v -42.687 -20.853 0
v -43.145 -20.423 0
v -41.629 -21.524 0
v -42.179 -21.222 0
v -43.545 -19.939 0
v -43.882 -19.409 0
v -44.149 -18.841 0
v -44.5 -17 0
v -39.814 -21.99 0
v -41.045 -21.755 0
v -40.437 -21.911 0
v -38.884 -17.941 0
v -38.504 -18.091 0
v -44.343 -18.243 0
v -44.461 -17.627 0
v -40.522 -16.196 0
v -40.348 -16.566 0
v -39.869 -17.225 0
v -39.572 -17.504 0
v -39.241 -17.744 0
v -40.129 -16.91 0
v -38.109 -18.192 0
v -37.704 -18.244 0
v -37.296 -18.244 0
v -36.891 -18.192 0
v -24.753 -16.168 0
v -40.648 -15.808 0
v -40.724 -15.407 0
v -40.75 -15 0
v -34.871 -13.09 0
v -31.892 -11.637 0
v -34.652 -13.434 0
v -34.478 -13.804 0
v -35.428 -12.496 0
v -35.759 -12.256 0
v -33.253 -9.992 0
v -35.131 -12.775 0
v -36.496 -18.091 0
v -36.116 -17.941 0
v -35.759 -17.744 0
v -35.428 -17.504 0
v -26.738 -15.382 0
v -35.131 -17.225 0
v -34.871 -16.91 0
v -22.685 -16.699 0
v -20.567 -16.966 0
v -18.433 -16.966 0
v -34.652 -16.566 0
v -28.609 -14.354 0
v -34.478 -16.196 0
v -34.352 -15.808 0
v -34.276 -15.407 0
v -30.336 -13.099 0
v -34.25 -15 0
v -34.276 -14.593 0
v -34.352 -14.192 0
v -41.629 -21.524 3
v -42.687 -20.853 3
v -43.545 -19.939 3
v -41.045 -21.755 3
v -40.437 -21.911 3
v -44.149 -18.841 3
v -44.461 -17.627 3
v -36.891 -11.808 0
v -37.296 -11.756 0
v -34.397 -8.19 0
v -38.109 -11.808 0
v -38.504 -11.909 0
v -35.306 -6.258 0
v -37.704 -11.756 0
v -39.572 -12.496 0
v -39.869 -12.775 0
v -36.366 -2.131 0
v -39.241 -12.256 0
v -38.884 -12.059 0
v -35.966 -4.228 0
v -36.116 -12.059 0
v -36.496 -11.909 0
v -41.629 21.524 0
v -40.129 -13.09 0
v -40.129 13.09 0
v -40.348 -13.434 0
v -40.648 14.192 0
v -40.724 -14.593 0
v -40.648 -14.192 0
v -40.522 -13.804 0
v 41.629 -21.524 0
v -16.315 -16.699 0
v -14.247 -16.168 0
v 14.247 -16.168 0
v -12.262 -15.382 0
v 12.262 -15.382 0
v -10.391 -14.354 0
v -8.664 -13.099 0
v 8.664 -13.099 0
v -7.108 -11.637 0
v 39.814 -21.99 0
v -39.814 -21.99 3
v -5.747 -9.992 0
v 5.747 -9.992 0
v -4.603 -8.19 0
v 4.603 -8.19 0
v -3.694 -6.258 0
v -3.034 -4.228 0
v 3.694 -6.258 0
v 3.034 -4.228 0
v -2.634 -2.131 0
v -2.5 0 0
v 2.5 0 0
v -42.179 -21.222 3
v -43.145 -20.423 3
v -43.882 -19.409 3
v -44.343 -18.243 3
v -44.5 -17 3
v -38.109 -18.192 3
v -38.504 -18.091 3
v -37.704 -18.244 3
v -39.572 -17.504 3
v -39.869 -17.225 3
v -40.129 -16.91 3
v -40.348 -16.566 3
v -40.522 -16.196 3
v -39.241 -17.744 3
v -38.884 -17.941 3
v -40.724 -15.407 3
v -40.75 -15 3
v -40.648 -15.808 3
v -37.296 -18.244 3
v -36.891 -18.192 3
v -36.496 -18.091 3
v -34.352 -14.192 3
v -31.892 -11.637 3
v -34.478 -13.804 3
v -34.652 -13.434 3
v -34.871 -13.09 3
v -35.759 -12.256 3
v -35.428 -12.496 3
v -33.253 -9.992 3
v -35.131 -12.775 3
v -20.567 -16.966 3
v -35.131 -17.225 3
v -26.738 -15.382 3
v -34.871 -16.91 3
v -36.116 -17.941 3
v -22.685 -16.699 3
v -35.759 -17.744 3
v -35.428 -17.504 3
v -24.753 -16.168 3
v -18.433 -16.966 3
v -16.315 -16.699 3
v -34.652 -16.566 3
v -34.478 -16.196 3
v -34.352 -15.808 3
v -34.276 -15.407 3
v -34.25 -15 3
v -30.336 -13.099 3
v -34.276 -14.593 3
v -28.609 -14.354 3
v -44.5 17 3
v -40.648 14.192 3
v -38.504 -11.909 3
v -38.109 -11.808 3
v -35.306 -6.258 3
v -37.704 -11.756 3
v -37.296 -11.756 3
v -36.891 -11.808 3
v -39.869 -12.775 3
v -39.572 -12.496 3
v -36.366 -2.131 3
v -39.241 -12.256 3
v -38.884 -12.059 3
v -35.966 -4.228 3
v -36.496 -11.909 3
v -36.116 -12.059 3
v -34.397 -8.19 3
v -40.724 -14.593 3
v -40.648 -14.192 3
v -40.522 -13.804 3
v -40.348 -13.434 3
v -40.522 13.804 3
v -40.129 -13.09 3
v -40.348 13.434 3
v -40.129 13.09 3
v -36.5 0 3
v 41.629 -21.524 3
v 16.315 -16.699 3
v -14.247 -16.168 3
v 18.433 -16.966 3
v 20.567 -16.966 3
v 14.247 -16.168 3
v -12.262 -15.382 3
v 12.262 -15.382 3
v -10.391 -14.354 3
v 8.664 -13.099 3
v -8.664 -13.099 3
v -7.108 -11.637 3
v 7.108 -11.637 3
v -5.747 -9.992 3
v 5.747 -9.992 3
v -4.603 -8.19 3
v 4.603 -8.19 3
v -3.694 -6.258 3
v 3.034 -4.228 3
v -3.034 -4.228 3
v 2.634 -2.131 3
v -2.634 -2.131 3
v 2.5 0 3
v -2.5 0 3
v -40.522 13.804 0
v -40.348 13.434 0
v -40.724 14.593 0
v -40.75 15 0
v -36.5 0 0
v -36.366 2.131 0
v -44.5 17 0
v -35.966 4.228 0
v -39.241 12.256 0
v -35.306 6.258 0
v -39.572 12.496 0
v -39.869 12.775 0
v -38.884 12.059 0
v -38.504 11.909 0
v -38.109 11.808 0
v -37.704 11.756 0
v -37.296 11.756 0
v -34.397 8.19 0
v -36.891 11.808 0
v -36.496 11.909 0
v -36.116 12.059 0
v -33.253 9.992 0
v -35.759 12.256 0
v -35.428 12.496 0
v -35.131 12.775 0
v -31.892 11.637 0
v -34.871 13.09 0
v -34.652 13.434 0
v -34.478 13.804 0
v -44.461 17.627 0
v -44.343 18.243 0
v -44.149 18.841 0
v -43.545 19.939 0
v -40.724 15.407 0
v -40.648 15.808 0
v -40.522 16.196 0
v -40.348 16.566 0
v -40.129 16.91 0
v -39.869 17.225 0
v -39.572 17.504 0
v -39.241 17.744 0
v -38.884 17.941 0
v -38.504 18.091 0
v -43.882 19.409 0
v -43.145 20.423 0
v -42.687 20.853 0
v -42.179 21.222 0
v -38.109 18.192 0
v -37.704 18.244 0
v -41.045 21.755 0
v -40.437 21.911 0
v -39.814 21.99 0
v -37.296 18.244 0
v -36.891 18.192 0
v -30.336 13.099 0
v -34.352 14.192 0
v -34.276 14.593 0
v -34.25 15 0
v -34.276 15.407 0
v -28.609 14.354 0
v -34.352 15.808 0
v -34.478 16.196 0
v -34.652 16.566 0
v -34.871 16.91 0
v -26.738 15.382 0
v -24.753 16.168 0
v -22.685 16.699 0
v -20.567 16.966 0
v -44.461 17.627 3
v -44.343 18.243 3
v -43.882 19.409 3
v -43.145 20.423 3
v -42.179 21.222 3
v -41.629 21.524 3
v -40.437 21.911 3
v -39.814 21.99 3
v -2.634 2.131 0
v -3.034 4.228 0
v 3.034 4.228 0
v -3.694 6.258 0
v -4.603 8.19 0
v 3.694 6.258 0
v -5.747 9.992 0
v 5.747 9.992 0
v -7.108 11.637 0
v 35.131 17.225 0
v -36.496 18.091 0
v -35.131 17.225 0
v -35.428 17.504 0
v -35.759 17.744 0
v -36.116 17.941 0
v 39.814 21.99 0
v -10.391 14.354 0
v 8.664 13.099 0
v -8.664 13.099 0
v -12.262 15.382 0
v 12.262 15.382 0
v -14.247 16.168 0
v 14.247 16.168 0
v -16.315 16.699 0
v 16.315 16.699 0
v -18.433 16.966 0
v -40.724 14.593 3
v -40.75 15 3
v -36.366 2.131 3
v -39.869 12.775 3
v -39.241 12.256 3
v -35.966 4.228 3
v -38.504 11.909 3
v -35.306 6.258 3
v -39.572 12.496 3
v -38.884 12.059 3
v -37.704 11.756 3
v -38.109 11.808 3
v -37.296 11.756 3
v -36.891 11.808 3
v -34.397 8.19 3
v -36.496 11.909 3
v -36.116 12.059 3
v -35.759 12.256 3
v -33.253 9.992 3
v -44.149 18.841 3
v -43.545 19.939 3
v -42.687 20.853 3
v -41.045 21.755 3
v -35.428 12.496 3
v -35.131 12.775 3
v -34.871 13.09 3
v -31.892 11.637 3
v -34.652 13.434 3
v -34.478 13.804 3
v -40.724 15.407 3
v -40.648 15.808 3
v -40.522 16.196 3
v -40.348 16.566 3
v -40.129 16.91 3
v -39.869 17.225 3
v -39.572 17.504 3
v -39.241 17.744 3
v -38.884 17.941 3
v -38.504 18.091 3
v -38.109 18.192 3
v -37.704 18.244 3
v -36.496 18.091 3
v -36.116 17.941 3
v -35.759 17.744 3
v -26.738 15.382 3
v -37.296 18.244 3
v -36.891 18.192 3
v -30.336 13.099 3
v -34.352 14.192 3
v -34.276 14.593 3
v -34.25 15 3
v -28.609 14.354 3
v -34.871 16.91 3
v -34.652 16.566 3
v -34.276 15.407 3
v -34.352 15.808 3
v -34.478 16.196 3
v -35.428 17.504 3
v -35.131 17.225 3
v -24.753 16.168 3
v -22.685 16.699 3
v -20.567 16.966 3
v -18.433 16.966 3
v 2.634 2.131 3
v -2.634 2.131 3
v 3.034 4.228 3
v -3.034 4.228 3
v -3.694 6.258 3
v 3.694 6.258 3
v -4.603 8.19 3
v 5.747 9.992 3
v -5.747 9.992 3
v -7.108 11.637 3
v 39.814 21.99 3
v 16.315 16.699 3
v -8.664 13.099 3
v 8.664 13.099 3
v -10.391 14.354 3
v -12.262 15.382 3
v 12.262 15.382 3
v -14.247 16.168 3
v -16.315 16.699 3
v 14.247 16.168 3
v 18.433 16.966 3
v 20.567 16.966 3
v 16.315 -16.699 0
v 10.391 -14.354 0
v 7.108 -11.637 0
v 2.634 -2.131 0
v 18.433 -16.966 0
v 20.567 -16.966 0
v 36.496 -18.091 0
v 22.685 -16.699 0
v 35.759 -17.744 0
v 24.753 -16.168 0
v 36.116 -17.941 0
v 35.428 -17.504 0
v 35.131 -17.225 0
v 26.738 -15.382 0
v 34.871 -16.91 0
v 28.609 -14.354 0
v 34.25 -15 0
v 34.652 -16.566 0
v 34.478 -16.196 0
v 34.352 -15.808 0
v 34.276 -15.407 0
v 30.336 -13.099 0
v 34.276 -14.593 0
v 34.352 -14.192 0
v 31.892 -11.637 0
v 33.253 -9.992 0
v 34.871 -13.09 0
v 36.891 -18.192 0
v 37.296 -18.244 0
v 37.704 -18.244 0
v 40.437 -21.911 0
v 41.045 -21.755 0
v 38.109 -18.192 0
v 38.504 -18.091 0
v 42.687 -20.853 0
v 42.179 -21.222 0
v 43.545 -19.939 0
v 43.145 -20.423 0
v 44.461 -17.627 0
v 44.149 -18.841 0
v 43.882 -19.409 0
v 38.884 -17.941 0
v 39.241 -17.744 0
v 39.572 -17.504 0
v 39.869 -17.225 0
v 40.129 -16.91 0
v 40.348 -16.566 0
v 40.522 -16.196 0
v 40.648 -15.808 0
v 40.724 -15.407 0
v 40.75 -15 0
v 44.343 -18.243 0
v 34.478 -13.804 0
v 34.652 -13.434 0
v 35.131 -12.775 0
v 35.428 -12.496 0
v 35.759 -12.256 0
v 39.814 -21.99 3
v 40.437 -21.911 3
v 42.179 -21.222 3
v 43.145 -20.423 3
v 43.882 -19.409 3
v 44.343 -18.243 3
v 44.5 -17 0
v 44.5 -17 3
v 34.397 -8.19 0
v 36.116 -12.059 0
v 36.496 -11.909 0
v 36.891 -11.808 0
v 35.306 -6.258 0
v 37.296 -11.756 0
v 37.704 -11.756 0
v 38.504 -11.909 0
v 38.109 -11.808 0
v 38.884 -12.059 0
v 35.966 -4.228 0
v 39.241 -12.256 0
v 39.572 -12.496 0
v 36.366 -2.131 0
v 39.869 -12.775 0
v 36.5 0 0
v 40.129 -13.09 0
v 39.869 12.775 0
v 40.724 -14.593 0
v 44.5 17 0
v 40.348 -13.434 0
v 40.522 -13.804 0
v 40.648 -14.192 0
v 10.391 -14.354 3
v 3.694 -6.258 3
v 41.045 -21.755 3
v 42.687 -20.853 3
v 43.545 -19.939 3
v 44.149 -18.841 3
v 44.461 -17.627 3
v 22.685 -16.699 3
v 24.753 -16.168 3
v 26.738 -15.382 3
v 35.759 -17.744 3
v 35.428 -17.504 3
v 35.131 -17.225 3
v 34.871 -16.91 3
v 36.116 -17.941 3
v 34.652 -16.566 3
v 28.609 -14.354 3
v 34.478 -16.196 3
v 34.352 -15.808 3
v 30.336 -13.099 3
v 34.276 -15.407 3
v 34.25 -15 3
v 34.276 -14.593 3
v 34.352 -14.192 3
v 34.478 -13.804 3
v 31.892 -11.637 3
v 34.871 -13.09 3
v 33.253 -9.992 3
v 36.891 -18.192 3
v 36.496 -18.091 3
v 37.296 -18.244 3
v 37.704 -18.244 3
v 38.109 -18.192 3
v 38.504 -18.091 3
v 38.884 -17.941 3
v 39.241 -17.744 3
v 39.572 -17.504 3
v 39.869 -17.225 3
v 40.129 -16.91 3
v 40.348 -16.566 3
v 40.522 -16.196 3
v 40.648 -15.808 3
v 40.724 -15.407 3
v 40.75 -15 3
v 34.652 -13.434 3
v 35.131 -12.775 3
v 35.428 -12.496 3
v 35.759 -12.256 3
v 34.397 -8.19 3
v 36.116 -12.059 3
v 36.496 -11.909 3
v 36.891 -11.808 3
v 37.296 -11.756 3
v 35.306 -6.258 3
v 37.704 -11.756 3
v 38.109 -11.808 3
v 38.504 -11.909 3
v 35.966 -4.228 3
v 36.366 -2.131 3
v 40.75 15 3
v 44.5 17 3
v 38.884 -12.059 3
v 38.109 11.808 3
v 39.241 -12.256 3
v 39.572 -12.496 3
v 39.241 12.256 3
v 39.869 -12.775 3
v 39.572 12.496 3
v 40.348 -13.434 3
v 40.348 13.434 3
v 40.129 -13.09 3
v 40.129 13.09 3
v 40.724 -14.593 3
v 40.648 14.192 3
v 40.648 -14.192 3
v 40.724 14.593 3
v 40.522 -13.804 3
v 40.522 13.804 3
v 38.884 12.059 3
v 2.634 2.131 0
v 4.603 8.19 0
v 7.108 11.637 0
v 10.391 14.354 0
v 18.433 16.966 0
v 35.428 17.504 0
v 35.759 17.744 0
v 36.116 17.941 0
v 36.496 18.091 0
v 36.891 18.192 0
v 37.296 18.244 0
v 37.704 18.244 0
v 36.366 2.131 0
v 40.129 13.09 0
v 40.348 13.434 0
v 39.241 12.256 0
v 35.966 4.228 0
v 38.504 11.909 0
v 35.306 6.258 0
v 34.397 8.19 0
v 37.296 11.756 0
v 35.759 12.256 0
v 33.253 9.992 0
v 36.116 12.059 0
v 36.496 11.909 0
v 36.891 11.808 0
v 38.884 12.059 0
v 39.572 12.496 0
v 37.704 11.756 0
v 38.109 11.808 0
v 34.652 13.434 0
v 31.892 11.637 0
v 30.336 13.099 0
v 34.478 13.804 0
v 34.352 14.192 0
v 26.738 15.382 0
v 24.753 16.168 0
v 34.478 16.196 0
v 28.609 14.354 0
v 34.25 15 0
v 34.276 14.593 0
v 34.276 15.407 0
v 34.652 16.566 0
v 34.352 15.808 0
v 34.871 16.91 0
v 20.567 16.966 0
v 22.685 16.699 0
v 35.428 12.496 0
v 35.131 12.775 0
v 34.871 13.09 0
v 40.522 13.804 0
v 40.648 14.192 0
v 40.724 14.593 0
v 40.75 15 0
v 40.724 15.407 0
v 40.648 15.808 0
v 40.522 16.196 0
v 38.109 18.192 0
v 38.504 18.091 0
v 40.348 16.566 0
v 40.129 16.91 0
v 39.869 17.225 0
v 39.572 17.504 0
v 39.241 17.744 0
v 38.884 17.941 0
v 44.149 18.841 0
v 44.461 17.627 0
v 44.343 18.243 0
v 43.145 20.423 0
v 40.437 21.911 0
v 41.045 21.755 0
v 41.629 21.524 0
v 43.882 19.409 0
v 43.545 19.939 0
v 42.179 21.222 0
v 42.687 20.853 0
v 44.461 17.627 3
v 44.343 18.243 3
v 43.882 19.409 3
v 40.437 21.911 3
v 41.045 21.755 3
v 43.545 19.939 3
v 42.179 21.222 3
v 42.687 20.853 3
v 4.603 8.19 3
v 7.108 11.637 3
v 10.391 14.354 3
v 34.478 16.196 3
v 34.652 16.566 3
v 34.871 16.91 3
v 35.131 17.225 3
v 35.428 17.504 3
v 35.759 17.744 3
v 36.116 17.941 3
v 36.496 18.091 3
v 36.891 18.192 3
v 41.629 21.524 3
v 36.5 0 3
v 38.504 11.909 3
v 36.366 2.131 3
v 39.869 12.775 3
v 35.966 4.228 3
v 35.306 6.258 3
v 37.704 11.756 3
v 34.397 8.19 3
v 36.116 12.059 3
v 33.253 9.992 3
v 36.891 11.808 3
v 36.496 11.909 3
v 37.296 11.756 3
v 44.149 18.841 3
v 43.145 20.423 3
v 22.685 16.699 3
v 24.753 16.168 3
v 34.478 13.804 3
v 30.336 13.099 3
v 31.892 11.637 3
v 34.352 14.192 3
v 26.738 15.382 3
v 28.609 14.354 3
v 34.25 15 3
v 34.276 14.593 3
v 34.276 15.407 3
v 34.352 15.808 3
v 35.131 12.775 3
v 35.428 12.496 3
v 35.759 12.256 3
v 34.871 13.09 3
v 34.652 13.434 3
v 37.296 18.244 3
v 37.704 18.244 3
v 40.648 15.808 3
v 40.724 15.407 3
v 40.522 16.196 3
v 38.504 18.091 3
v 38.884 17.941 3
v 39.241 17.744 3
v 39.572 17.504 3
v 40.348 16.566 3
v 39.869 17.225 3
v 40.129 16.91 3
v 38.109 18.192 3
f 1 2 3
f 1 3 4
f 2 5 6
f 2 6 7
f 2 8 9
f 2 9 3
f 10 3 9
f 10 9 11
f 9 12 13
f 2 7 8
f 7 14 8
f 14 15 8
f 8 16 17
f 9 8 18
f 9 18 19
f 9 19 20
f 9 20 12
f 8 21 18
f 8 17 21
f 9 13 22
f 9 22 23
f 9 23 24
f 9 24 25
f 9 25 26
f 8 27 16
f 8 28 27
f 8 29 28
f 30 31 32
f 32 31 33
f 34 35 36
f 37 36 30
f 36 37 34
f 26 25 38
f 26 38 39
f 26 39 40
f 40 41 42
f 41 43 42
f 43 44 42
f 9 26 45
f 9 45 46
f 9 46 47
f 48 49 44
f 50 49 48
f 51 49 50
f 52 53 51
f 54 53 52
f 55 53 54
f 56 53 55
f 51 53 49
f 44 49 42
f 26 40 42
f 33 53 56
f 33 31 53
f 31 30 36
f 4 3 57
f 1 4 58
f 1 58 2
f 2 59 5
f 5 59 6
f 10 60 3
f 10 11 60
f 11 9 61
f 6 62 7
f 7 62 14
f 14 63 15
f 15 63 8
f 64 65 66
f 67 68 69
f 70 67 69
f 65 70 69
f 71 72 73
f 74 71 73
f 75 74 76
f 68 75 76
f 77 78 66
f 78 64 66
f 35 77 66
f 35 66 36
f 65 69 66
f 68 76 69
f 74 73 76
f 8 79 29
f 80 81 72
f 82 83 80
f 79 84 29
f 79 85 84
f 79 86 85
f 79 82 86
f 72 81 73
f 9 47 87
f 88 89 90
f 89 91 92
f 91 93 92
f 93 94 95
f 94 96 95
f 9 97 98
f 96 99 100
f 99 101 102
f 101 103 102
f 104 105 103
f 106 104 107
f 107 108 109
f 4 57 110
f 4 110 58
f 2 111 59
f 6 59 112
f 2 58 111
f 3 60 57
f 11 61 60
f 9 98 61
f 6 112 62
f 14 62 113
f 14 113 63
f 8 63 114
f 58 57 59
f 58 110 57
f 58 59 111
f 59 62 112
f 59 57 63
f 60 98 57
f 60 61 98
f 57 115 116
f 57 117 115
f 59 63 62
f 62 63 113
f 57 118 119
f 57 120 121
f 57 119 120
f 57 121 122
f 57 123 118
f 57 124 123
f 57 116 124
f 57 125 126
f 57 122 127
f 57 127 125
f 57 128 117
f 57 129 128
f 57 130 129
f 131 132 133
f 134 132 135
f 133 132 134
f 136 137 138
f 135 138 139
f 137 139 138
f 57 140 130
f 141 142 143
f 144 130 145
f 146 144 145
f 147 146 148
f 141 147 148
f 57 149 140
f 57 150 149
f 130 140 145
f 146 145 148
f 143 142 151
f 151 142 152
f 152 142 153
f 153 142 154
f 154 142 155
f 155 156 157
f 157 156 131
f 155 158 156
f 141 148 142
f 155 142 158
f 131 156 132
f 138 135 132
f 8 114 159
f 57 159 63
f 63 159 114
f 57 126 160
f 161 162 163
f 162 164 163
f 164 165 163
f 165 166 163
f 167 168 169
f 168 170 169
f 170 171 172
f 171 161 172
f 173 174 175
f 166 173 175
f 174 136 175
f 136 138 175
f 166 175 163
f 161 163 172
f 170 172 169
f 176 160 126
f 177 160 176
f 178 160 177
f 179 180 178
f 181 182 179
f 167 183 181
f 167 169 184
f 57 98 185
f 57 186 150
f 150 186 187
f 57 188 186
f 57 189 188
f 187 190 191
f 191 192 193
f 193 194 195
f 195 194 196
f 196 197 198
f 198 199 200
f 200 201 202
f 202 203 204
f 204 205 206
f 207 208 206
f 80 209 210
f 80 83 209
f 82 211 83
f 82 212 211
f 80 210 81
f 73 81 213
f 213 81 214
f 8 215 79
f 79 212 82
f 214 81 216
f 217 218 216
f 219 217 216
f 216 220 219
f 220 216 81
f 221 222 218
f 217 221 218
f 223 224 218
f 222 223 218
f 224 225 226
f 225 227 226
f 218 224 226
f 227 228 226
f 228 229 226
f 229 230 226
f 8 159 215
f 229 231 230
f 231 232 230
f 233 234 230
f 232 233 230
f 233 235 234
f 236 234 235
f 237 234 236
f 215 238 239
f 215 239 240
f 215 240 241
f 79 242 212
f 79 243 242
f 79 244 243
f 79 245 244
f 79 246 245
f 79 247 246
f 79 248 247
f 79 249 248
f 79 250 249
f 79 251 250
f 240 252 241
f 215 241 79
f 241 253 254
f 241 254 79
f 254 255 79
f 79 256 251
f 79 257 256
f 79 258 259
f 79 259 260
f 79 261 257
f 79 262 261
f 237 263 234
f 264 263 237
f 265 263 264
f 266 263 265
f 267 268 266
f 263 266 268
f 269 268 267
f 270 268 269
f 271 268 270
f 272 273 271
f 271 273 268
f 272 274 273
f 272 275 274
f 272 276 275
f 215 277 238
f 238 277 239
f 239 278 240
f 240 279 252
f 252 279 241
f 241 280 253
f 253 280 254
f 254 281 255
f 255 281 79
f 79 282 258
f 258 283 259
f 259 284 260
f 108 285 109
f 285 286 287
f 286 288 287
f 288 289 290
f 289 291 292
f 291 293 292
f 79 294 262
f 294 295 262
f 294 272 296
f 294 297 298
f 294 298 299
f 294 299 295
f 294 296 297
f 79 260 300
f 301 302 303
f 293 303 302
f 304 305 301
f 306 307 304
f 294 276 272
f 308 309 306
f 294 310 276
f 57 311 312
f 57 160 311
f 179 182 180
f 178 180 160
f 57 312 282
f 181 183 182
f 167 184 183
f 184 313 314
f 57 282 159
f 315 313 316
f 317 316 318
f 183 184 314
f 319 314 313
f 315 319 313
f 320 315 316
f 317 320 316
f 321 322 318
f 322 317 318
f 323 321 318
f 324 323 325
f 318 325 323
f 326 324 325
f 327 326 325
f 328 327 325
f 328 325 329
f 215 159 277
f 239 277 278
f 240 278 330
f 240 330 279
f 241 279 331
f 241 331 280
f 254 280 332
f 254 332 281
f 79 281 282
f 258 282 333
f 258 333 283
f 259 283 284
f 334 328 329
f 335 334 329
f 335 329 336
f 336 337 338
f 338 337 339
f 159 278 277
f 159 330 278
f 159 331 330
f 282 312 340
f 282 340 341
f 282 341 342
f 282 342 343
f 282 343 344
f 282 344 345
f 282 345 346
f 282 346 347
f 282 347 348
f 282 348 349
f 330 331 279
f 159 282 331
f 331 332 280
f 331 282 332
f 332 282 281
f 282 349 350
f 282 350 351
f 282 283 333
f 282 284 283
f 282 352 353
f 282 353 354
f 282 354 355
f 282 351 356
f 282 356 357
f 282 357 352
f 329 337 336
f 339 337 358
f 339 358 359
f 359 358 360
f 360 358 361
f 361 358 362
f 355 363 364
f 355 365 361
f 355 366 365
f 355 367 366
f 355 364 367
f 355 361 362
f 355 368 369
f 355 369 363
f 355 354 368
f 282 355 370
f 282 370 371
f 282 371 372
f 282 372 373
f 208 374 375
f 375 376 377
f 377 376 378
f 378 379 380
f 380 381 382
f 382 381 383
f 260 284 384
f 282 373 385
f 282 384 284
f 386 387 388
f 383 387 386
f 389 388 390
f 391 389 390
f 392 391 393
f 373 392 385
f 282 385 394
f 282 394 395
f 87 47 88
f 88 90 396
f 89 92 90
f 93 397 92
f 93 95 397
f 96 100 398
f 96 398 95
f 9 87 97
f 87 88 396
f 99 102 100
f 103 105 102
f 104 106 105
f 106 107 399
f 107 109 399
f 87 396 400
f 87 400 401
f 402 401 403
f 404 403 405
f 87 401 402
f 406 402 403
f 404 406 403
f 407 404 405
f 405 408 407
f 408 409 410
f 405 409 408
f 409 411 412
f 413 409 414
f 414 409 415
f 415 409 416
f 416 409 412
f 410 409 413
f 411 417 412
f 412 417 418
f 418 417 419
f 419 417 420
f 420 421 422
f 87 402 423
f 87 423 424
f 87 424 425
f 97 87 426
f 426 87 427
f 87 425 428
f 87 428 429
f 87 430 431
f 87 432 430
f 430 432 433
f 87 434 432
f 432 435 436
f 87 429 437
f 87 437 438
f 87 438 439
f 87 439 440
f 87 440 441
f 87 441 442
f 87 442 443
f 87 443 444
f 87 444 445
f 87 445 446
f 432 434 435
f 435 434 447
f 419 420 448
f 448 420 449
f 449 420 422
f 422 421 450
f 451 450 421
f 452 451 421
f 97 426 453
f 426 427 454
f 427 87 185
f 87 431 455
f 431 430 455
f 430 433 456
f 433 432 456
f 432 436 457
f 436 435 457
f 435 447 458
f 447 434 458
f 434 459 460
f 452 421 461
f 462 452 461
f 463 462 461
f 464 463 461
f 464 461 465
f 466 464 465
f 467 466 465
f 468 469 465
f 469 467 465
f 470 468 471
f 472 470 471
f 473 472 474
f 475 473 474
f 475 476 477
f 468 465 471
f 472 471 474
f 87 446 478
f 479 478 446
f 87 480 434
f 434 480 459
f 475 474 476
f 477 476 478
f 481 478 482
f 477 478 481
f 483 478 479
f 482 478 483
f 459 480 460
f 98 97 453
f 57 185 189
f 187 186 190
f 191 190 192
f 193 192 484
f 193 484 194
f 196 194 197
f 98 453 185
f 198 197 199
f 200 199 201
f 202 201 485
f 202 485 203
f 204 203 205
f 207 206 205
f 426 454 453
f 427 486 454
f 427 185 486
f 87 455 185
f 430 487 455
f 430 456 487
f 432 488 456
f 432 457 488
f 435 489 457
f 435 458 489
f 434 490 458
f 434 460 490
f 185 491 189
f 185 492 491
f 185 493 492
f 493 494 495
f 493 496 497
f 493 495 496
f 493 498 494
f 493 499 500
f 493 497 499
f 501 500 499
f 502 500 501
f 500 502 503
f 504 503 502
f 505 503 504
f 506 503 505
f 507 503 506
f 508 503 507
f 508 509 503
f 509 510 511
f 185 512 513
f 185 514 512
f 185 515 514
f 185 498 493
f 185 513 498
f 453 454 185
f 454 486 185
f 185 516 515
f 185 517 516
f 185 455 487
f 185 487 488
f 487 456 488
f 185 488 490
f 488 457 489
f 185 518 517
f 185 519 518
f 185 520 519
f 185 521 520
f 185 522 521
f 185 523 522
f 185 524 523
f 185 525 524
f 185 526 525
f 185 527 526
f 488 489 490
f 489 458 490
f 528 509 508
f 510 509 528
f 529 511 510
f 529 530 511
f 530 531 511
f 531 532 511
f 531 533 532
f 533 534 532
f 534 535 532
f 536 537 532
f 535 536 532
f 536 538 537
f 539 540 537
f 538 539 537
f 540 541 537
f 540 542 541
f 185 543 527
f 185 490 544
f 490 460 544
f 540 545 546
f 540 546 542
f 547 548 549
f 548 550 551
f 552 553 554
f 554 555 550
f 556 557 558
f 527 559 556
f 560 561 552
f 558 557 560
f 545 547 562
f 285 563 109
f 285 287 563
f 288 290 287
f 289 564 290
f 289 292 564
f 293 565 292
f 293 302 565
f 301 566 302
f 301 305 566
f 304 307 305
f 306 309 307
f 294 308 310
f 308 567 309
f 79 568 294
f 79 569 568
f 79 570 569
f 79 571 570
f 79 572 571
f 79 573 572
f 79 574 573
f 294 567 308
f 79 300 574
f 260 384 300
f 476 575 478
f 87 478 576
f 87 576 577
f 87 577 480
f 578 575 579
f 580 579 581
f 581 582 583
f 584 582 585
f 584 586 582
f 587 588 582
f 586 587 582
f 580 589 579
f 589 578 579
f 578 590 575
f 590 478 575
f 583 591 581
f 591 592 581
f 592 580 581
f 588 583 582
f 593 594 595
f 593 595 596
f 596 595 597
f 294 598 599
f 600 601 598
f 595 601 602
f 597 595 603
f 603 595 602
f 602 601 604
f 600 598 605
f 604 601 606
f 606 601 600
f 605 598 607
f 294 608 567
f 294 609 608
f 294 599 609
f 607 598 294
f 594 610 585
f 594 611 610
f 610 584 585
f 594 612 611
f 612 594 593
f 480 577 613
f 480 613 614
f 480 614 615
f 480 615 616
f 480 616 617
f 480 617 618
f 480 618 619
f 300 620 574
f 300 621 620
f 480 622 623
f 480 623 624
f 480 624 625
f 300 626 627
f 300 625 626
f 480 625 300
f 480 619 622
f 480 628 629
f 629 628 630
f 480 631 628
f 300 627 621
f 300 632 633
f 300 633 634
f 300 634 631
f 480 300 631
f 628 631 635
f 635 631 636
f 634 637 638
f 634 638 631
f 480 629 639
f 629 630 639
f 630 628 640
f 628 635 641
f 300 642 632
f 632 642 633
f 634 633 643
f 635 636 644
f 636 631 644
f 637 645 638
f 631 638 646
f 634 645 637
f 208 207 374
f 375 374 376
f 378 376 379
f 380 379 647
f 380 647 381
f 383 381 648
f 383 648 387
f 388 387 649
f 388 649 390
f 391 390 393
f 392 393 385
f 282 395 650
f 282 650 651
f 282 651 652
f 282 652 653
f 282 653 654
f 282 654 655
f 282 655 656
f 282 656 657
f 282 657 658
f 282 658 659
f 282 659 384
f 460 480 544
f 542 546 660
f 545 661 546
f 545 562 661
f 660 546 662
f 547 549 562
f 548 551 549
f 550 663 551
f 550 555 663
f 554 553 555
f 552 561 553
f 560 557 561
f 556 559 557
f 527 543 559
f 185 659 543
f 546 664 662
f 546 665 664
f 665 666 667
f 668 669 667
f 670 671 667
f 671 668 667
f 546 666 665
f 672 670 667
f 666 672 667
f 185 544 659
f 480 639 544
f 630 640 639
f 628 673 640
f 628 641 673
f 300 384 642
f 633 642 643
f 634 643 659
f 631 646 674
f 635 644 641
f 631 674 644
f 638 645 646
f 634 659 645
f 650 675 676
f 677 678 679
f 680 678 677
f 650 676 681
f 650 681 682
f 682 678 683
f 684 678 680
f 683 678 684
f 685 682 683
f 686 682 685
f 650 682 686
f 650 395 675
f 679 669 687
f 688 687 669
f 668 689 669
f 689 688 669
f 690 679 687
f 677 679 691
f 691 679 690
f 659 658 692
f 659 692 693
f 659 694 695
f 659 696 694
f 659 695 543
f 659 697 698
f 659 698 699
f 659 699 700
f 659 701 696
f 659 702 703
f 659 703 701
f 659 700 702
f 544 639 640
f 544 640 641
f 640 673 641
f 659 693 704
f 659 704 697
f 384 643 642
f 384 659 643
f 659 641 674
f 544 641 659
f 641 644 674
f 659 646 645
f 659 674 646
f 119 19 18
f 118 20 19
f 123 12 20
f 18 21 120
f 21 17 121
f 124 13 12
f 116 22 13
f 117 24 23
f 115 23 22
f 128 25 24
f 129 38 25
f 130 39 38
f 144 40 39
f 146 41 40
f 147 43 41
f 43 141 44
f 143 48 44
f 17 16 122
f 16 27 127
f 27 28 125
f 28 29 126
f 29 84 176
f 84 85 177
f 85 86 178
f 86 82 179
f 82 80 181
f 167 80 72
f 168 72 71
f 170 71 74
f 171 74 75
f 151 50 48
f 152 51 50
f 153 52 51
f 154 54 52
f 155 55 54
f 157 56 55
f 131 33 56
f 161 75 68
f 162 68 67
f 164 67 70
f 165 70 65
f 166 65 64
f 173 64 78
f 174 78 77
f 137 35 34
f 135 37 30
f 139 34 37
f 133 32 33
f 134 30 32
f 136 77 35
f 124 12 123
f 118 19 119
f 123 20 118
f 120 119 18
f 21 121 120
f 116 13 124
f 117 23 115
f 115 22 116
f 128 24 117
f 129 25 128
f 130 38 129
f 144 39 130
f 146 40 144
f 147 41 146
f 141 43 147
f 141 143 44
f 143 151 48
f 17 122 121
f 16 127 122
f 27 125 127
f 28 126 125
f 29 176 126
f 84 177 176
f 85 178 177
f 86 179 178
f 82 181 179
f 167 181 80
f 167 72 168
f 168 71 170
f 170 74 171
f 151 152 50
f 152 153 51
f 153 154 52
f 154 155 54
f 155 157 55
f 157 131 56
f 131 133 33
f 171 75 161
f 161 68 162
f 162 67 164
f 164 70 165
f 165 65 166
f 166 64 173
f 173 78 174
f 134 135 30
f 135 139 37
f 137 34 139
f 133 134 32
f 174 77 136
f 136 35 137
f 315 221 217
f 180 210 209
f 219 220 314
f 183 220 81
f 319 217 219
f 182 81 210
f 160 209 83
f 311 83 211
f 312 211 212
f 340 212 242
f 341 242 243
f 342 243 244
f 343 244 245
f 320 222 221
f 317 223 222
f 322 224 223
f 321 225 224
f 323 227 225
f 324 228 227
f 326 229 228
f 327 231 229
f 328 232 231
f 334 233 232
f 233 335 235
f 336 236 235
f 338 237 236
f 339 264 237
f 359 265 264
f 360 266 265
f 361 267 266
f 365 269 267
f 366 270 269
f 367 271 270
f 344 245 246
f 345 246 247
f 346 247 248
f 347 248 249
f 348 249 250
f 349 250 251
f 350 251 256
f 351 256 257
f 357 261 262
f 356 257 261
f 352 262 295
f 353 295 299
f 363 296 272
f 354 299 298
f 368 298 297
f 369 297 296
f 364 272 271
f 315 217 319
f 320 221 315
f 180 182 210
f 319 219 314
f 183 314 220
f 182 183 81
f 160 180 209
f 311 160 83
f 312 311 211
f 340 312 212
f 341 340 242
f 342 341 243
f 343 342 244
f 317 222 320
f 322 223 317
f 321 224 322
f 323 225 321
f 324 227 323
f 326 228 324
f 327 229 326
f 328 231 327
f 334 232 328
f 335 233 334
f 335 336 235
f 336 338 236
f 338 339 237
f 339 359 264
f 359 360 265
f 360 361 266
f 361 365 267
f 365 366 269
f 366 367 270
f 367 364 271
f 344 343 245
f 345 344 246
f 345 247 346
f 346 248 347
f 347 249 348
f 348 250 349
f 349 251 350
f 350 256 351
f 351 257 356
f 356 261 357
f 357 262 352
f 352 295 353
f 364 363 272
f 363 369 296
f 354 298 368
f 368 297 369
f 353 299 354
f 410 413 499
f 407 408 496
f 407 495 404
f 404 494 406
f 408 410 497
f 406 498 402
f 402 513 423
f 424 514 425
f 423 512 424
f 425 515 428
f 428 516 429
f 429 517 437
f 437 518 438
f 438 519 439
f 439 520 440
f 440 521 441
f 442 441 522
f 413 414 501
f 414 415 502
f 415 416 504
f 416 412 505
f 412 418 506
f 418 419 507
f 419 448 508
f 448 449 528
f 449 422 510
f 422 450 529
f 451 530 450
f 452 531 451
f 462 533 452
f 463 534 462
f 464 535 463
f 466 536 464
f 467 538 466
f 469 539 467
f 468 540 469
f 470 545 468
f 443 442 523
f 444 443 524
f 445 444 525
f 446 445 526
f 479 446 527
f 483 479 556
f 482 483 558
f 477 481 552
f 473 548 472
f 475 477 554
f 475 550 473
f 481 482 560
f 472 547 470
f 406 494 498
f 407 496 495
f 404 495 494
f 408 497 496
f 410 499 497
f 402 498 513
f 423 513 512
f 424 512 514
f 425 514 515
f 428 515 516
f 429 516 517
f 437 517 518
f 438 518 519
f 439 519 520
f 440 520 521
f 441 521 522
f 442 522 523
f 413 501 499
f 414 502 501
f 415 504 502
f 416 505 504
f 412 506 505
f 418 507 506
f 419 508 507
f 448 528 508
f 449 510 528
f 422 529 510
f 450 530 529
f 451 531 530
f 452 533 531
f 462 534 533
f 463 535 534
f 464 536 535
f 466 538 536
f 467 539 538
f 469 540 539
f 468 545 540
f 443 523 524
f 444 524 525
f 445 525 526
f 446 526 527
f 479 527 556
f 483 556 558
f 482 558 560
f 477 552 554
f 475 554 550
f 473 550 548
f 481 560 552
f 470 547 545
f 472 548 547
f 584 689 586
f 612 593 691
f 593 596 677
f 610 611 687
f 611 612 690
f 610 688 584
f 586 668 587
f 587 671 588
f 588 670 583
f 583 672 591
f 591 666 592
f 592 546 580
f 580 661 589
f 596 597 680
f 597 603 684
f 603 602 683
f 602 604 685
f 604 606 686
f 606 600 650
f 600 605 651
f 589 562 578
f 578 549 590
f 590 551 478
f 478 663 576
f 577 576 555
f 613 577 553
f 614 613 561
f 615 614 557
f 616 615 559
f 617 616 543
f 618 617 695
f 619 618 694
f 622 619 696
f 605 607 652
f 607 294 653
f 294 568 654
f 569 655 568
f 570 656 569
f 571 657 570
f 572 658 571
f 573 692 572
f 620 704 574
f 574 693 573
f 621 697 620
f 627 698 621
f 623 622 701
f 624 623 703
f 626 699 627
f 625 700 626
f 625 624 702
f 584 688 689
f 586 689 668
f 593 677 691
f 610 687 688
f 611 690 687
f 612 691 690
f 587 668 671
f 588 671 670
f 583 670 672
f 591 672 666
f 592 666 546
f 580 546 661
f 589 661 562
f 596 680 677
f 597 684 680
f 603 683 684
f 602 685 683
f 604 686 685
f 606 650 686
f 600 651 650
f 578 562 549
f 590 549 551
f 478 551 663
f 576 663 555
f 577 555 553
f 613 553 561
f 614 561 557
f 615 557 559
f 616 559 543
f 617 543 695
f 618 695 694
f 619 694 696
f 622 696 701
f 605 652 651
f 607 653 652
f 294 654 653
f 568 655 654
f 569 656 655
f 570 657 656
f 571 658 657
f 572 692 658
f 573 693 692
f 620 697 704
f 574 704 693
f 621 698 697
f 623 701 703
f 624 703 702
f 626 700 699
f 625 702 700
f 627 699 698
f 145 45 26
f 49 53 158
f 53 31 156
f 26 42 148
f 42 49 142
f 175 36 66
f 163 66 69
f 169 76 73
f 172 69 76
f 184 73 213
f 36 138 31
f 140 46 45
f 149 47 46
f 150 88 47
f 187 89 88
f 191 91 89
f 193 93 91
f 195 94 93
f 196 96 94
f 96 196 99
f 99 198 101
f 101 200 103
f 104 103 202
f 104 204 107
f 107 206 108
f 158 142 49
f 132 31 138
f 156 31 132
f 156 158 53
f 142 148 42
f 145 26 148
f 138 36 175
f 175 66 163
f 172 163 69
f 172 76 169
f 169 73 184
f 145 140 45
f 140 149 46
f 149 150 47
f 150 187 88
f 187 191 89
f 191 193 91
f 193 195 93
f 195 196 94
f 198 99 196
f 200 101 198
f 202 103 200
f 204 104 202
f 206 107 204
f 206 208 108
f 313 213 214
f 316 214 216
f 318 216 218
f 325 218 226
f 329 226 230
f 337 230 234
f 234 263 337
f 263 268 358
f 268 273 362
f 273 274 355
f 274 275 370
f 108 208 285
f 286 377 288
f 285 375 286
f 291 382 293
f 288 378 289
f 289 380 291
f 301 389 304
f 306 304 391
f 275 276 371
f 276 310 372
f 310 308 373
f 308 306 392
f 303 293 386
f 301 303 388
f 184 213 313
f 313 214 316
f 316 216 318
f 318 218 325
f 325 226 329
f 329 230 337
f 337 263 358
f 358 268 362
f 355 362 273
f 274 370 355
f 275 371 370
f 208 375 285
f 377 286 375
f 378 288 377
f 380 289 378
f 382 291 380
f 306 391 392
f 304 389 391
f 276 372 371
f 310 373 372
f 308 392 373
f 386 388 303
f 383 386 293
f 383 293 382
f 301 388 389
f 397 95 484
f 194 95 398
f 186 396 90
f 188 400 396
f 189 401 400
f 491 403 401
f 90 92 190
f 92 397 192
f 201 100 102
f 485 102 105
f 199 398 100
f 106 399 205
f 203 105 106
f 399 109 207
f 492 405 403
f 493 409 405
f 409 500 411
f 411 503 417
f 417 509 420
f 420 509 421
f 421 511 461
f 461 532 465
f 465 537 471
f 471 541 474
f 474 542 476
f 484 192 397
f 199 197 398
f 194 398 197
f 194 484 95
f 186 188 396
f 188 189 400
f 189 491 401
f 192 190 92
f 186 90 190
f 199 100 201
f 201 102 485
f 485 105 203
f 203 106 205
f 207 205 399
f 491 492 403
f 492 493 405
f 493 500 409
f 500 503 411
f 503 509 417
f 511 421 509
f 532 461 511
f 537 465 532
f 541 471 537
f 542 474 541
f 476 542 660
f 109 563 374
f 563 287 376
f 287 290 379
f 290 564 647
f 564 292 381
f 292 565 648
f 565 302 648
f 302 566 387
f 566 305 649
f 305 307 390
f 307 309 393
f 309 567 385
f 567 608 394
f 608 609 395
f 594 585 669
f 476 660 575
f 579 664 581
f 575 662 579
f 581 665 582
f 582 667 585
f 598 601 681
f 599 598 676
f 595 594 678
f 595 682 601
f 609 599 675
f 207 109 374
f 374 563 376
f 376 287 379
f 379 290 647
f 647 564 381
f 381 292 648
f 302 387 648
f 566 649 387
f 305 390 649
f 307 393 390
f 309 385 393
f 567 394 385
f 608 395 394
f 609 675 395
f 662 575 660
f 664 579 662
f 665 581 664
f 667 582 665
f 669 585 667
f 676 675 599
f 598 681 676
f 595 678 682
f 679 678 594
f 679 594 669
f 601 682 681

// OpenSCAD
$fn = 50;

difference() {
	union() {
		hull() {
			translate(v = [-39.5, 17.0, 0]) {
				cylinder(h = 3, r = 5);
			}
			translate(v = [39.5, 17.0, 0]) {
				cylinder(h = 3, r = 5);
			}
			translate(v = [-39.5, -17.0, 0]) {
				cylinder(h = 3, r = 5);
			}
			translate(v = [39.5, -17.0, 0]) {
				cylinder(h = 3, r = 5);
			}
		}
	}
	union() {
		translate(v = [-37.5, -15.0, -100.0]) {
			cylinder(h = 200, r = 3.25);
		}
		translate(v = [-37.5, 15.0, -100.0]) {
			cylinder(h = 200, r = 3.25);
		}
		translate(v = [37.5, -15.0, -100.0]) {
			cylinder(h = 200, r = 3.25);
		}
		translate(v = [37.5, 15.0, -100.0]) {
			cylinder(h = 200, r = 3.25);
		}
		translate(v = [-37.5, -15.0, -100.0]) {
			cylinder(h = 200, r = 1.8);
		}
		translate(v = [-37.5, 15.0, -100.0]) {
			cylinder(h = 200, r = 1.8);
		}
		translate(v = [37.5, -15.0, -100.0]) {
			cylinder(h = 200, r = 1.8);
		}
		translate(v = [37.5, 15.0, -100.0]) {
			cylinder(h = 200, r = 1.8);
		}
		translate(v = [-19.5, 0, 0.0]) {
			cylinder(h = 3, r = 17.0);
		}
		translate(v = [19.5, 0, 0.0]) {
			cylinder(h = 3, r = 17.0);
		}
	}
}
